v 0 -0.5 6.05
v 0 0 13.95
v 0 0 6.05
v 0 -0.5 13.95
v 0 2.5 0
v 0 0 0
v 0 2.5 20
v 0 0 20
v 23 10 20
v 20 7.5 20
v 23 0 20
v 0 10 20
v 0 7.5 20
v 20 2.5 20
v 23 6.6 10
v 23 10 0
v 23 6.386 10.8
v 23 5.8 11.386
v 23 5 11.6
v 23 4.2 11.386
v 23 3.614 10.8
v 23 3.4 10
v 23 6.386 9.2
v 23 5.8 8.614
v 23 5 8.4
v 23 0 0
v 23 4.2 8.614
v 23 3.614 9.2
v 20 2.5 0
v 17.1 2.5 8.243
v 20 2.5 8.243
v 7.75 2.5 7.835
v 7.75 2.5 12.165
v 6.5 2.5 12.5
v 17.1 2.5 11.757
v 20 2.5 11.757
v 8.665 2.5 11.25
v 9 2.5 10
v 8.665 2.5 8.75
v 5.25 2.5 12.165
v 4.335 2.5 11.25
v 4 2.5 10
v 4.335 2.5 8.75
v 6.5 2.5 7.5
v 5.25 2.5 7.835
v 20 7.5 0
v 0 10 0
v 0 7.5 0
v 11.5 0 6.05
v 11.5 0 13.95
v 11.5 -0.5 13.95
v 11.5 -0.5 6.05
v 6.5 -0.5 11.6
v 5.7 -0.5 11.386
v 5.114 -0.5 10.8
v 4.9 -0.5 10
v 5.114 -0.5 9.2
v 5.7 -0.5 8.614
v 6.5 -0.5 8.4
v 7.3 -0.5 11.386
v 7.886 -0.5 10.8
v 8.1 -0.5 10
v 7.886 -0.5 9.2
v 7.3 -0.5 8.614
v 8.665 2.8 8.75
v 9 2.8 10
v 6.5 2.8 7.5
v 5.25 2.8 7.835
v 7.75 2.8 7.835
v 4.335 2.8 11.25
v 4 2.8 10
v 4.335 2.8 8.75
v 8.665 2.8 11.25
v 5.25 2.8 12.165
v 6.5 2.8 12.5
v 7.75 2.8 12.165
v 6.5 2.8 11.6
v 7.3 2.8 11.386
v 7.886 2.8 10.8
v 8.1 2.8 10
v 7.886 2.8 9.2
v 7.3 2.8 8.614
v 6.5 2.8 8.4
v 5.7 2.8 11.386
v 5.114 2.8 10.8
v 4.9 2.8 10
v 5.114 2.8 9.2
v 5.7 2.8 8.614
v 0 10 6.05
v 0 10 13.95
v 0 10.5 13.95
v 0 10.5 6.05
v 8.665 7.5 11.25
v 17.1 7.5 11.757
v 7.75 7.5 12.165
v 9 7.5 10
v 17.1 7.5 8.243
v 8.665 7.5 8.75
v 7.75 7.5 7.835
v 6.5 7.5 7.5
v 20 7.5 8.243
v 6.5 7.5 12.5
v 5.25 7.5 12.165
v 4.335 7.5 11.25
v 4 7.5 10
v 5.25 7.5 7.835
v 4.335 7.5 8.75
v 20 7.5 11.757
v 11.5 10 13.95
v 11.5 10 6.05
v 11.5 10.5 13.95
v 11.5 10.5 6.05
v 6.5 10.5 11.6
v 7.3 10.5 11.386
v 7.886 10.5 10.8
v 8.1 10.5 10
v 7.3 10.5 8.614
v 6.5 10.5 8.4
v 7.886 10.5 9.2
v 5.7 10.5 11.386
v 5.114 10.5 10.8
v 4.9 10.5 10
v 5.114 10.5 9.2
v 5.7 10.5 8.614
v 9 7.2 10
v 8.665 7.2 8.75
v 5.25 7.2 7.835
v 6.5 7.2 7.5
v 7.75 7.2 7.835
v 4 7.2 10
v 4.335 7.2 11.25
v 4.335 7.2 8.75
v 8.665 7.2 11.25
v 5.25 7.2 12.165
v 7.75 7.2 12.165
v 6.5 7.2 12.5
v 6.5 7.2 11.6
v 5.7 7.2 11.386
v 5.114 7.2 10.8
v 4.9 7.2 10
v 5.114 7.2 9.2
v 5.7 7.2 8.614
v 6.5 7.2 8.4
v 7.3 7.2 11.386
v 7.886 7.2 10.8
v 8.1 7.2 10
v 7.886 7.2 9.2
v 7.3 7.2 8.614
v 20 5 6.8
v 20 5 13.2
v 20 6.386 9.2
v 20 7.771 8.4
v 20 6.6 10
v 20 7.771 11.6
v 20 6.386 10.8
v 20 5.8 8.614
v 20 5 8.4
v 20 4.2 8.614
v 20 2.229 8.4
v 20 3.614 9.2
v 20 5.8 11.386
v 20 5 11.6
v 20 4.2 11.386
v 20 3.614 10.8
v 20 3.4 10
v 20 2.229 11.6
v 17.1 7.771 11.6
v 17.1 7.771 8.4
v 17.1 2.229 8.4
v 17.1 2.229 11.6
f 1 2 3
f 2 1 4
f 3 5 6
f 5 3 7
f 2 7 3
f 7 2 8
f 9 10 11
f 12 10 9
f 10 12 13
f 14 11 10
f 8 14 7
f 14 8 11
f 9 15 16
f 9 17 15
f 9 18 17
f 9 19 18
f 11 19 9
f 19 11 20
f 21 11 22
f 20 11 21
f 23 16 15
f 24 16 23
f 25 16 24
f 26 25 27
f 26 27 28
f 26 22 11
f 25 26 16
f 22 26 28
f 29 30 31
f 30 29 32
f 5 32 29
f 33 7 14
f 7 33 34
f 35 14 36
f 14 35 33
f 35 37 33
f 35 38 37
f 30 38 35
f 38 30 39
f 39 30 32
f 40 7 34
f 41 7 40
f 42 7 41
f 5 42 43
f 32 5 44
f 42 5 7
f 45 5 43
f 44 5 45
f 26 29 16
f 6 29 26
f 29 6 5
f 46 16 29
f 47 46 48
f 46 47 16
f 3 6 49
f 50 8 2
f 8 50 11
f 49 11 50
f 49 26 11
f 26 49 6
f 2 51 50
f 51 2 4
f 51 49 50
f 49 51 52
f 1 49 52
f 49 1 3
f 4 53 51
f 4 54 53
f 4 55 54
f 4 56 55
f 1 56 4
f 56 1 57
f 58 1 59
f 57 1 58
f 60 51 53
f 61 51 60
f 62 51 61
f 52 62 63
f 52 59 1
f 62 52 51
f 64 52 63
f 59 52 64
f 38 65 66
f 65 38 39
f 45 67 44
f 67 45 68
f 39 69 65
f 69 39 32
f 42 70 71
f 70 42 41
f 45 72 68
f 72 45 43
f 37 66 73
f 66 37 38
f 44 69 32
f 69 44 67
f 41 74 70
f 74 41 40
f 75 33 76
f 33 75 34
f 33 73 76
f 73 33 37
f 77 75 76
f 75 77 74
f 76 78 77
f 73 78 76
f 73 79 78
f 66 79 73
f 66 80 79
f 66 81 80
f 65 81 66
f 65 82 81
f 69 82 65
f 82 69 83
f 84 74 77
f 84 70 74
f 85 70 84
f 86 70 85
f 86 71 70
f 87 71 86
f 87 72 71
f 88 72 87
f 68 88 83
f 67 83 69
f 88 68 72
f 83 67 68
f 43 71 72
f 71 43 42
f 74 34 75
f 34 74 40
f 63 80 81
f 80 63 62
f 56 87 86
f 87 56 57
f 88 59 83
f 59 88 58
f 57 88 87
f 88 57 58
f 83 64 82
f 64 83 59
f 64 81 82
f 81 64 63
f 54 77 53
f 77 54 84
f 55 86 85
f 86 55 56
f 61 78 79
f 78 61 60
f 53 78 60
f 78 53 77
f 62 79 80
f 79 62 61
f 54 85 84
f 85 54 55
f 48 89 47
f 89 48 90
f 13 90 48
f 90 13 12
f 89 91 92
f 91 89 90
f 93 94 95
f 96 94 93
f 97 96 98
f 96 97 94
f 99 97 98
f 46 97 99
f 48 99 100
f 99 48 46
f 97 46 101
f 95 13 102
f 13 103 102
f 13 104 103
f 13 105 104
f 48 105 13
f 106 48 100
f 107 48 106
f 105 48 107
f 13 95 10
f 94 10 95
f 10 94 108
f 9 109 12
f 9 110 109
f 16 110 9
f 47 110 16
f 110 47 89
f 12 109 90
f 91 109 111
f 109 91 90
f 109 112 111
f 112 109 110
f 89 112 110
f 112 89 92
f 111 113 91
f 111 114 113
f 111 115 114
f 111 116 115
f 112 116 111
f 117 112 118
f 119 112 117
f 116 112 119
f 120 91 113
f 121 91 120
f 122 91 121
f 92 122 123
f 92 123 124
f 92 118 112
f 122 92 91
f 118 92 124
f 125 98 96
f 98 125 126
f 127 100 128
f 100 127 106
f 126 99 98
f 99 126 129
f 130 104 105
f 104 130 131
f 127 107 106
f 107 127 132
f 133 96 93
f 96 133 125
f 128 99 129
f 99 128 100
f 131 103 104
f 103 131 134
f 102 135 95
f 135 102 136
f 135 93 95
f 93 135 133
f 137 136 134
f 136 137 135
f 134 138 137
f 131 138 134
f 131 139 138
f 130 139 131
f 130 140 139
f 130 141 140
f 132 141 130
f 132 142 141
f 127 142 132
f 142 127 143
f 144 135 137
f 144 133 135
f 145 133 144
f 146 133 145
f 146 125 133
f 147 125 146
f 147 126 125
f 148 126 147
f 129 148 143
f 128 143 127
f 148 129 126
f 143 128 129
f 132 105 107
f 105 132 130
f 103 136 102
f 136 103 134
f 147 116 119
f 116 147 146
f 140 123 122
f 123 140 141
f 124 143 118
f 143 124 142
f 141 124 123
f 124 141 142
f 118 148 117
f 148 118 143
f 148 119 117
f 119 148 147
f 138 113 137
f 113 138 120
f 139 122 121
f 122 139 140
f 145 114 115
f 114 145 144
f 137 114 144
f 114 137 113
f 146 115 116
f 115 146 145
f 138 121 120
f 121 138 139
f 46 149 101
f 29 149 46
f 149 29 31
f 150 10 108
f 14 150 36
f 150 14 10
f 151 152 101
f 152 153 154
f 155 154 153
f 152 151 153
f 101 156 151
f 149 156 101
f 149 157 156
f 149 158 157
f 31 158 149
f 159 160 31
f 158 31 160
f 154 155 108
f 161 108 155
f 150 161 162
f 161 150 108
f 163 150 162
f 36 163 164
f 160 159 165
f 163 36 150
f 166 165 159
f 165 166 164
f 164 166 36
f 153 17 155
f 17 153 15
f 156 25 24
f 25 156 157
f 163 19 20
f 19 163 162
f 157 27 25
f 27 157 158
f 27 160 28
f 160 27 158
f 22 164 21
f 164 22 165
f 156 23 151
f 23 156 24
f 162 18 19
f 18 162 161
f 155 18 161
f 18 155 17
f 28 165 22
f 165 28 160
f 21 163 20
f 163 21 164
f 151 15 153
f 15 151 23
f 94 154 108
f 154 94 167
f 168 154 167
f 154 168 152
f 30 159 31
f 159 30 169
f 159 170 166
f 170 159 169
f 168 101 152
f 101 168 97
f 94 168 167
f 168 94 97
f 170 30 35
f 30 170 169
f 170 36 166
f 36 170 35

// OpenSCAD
thickness = 2.5;
top_thickness = thickness + 0.5;
height = 23;
width = 20;
gap = 5;
hole_offset = 6.5;
slot_width = 8-0.1;
module side() {
  difference() {
    union() {
      cube([height, thickness, width]);
      translate([0,-0.5,(width-slot_width)/2]) {
        cube([height/2, thickness+0.5, slot_width]);
      }
      translate([hole_offset, 0.3, width/2]) rotate([-90,0,0])
        cylinder(r = 5/2, h = thickness, $fn = 12);
    }
    translate([hole_offset, -thickness, width/2]) rotate([-90,0,0])
      cylinder(r = 3.2/2, h = thickness*3, $fn = 12);
  }
}

module top() {
  translate([height-top_thickness, 0, 0]) {
    difference() {
      cube([top_thickness, gap+thickness*2, width]);
      translate([-top_thickness, gap/2+thickness, width/2]) rotate([0,90,0])
        cylinder(r = 3.2/2, h = top_thickness*3, $fn = 12);
    }
  }
}

module hex_screw_hole() {
  cylinder(r = 6.4/2, h = 2.4+0.5, $fn = 6);
}

difference() {
  union() {
    side();
    translate([0,gap+thickness*2,0]) mirror([0,-1,0]) side();
    top();
  }
  translate([height-top_thickness,gap/2+thickness,width/2]) {
    rotate([0,-90,0]) {
      hex_screw_hole();
    }
  }
}

%translate([hole_offset, thickness+gap/2-v_ball_bearing_v_height(BB623VV)/2,
            width/2]) rotate([-90,0,0]) v_ball_bearing(BB623VV);

/* the following definitions are loosely derived from
 * nophead's awesome Mendel90 scad.
 * any bugs are most likely mine.
 */

grey70                          = [0.7, 0.7, 0.7];
grey80                          = [0.8, 0.8, 0.8];
hard_washer_color                = grey80;
bearing_color                    = grey70;

BB624VV = [4, 13, 5, "624VV"];
BB623VV = [3, 12, 4, 1.2, 2.7, "623VV"];

function v_ball_bearing_v_depth(type) = type[3];
function v_ball_bearing_v_width(type) = type[4];
function v_ball_bearing_v_height(type) = type[2];

module v_ball_bearing(type) {
    vitamin(str("BB",type[5],": V groove ball bearing ",type[5]," ",type[0], "mm x ", type[1], "mm x ", type[2], "mm, v depth ", type[3], "mm, w width ", type[4]), "mm");

    v_r = type[1]/2-type[3];
    or = type[1]/2;
    ir = type[0]/2;
    h = type[2];
    color(bearing_color) render() difference() {
      rotate_extrude() {
        polygon(points = [ [ir, h],            [or, h],
                                               [or, h/2+type[4]/2],
                                    [v_r, h/2],
                                               [or, h/2-type[4]/2],
                                               [or, 0],
                           [ir, 0]]);
      }
    }
    if($children)
        translate([0, 0, h])
            child();
}

module vitamin() {}
